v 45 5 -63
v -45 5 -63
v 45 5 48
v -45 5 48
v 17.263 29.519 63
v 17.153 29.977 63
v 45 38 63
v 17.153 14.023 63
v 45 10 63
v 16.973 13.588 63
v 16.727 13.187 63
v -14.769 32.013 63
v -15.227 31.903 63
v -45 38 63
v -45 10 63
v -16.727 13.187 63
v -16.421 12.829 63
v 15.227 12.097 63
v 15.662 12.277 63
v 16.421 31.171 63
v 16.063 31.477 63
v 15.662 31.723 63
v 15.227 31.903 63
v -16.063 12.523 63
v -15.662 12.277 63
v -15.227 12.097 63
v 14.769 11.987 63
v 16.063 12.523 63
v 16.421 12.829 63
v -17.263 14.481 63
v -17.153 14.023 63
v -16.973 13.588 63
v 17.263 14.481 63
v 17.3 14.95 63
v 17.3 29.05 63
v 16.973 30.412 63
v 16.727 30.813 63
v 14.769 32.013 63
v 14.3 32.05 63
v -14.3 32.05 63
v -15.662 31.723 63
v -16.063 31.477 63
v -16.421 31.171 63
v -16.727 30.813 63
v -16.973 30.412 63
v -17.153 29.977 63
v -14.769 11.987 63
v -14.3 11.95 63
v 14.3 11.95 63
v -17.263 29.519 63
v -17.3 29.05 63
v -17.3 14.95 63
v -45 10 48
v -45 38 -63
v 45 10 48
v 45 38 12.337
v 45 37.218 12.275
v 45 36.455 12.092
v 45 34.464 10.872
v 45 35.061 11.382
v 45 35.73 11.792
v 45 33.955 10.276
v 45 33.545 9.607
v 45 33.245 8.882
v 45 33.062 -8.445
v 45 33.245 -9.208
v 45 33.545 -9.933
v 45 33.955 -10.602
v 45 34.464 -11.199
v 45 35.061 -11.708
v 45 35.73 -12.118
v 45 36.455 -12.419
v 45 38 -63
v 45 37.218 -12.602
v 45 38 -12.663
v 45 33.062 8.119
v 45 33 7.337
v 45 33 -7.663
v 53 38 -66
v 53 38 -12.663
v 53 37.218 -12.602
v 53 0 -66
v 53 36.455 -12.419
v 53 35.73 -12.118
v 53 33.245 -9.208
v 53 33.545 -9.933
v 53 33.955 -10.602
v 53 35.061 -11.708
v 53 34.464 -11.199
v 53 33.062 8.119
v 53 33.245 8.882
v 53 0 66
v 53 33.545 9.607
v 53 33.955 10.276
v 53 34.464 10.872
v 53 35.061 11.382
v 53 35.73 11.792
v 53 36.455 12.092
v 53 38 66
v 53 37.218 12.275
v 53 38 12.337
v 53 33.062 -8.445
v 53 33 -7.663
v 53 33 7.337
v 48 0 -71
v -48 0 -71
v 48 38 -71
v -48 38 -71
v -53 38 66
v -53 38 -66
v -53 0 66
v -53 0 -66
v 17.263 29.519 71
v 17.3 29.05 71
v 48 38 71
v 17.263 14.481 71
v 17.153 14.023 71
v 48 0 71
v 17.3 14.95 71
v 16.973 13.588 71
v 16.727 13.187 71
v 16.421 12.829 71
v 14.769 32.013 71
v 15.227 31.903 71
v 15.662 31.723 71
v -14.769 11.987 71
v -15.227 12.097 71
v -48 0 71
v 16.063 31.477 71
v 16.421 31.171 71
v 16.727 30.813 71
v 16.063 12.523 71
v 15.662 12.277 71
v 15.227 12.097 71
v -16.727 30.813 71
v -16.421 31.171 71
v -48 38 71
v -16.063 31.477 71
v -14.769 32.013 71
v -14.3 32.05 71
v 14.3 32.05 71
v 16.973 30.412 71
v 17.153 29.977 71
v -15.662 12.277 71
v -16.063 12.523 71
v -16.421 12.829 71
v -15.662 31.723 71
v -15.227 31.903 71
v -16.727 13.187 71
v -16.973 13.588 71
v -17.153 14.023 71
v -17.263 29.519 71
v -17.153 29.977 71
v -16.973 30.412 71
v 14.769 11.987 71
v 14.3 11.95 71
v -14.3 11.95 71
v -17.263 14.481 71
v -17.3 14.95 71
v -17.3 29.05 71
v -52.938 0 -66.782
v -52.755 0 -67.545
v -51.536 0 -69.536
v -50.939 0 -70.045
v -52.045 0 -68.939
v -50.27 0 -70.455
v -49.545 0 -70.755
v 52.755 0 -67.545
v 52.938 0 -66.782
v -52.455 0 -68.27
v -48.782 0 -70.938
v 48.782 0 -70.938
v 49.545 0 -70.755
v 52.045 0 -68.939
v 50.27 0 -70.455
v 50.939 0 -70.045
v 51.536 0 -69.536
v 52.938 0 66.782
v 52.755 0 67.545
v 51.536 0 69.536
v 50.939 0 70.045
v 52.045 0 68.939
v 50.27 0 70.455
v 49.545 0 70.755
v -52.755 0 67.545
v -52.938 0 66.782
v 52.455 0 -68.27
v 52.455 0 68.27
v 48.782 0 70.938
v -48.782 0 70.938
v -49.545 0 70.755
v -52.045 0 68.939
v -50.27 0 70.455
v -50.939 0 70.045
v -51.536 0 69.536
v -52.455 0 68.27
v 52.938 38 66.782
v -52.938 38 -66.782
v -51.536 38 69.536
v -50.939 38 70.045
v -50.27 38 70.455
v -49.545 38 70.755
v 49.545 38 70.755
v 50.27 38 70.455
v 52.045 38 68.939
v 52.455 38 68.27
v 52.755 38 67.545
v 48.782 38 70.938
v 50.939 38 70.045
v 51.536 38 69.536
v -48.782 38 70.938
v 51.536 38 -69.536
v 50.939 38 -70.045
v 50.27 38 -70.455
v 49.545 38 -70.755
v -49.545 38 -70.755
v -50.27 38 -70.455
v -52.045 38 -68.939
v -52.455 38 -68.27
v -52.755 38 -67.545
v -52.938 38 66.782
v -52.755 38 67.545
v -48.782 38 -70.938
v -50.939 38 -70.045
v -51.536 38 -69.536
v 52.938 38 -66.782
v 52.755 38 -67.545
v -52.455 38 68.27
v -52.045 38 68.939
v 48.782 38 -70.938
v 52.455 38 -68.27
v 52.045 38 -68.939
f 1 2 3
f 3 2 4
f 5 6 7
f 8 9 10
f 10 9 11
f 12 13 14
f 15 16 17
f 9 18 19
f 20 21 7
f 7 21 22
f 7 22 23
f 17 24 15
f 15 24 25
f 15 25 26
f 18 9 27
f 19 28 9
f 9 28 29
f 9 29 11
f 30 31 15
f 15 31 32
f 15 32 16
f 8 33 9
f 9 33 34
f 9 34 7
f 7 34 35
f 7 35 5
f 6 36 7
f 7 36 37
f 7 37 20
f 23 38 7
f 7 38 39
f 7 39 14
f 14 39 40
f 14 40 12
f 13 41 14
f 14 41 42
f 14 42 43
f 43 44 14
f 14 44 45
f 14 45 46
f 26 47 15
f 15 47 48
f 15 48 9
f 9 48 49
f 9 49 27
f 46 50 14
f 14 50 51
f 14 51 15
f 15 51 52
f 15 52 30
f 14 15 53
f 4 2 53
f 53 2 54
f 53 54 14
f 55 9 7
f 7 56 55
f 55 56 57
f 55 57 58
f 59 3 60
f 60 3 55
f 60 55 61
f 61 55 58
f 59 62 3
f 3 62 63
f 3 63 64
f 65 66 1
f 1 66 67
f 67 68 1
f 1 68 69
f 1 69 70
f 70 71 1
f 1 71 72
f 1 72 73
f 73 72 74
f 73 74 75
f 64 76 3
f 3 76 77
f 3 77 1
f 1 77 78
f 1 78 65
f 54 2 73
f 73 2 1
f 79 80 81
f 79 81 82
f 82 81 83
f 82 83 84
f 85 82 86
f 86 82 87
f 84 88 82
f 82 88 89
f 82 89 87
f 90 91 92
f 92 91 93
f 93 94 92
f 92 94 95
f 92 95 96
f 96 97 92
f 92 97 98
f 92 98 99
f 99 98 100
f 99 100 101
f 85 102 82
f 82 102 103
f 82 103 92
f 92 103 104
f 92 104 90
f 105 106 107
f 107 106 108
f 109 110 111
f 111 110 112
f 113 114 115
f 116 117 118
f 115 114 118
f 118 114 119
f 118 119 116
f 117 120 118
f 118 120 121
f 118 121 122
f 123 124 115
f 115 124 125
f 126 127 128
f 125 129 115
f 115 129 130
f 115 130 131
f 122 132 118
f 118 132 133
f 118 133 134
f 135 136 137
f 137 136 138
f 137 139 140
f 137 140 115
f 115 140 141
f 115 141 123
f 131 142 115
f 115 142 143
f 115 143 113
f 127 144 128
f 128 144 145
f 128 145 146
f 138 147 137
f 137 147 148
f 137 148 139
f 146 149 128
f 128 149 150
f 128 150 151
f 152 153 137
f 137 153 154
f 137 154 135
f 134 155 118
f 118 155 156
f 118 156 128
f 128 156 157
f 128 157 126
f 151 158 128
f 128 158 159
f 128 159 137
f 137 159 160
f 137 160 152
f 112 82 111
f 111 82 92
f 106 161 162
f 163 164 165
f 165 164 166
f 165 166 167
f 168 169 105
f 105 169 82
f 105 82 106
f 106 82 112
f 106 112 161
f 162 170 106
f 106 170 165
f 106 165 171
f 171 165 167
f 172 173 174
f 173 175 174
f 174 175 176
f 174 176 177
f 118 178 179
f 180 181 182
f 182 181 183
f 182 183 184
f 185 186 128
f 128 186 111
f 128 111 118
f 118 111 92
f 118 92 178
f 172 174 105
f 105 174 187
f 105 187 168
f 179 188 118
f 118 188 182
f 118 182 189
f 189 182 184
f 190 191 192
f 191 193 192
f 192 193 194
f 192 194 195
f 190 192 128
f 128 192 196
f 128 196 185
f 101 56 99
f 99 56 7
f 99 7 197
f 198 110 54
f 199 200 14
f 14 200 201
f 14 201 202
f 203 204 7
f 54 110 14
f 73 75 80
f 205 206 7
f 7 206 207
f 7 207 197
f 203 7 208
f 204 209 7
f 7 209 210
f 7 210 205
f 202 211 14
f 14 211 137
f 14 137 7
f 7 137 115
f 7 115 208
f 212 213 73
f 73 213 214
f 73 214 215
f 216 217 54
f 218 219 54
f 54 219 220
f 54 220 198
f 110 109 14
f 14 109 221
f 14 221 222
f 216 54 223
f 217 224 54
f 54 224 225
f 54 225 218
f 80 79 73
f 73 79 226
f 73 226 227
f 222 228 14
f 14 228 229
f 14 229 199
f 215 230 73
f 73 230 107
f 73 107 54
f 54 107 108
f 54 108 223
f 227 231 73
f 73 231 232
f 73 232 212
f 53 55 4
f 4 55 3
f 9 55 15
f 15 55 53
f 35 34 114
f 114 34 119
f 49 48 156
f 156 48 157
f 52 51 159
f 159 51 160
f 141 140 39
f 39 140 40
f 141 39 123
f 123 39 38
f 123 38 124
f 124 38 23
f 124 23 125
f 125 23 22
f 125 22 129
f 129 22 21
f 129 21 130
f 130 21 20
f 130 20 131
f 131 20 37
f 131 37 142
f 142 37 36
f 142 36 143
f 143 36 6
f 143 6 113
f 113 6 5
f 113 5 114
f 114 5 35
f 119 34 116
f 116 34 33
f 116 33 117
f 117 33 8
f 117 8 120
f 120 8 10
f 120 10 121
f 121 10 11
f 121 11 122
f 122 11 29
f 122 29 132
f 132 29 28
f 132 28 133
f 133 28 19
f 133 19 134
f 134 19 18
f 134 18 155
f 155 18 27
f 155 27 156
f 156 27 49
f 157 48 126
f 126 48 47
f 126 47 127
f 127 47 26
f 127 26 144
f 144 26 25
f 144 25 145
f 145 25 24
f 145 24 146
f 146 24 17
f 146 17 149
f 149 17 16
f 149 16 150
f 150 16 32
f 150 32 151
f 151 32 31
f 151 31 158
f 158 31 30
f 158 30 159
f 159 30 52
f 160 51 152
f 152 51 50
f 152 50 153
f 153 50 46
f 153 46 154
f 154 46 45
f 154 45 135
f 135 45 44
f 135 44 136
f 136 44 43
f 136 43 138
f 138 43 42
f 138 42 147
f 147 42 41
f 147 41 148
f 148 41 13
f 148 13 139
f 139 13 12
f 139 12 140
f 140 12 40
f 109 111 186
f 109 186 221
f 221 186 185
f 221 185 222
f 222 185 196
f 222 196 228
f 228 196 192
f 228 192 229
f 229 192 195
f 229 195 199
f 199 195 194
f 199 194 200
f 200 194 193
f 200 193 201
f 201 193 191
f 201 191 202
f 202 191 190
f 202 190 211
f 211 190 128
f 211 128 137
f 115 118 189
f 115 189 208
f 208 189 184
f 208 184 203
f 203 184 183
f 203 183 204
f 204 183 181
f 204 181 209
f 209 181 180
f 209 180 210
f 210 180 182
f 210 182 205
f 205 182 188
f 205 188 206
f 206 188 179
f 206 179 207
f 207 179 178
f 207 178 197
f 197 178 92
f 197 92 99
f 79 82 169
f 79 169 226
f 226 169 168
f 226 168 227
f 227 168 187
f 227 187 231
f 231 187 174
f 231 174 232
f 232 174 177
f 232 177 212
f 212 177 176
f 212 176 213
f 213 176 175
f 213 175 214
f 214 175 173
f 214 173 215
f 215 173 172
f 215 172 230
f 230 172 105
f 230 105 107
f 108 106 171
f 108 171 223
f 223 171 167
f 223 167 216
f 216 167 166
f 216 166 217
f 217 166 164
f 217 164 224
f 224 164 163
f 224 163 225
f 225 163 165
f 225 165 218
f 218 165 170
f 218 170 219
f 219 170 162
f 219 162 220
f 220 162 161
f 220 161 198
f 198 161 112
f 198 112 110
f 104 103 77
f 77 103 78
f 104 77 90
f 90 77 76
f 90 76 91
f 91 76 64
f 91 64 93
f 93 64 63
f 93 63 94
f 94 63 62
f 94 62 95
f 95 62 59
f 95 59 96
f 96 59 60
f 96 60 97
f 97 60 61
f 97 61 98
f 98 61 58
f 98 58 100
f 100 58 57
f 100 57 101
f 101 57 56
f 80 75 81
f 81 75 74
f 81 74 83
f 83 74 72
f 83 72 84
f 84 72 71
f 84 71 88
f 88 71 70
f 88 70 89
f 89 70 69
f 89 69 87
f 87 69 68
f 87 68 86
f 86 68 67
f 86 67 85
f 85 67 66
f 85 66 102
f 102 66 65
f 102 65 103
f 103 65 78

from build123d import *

# Parameters (mm, degrees)
SKETCH1_W           = 106
SKETCH1_H           = 142
BOSS_EXTRUDE1_DEPTH = 5
SKETCH2_W           = 106
SKETCH2_H           = 8
BOSS_EXTRUDE2_DEPTH = 33
SKETCH3_W           = 106
SKETCH3_H           = 8
BOSS_EXTRUDE3_DEPTH = 33
SKETCH4_W           = 8
SKETCH4_H           = 126
BOSS_EXTRUDE4_DEPTH = 33
SKETCH5_W           = 90
SKETCH5_H           = 15
BOSS_EXTRUDE5_DEPTH = 5
SKETCH6_W           = 34.6
SKETCH6_H           = 20.1
CUT_EXTRUDE1_DEPTH  = 10
FILLET1_R           = 3
FILLET2_R           = 5
SKETCH8_W           = 25
SKETCH8_H           = 5
CUT_EXTRUDE2_DEPTH  = 10
FILLET3_R           = 5


with BuildPart() as part:
    # Sketch1 → Boss-Extrude1 (new body)
    with BuildSketch(Plane(origin=(0, 0, 0), x_dir=(1, 0, 0), z_dir=(0, 1, 0))):
        Rectangle(SKETCH1_W, SKETCH1_H)
    extrude(amount=BOSS_EXTRUDE1_DEPTH)

    # Sketch2 → Boss-Extrude2 (add)
    with BuildSketch(Plane(origin=(0, 5, 0), x_dir=(1, 0, 0), z_dir=(0, 1, 0))):
        with Locations((0, -67)):
            Rectangle(SKETCH2_W, SKETCH2_H)
    extrude(amount=BOSS_EXTRUDE2_DEPTH)

    # Sketch3 → Boss-Extrude3 (add)
    with BuildSketch(Plane(origin=(0, 5, 0), x_dir=(1, 0, 0), z_dir=(0, 1, 0))):
        with Locations((0, 67)):
            Rectangle(SKETCH3_W, SKETCH3_H)
    extrude(amount=BOSS_EXTRUDE3_DEPTH)

    # Sketch4 → Boss-Extrude4 (add)
    with BuildSketch(Plane(origin=(0, 5, 0), x_dir=(1, 0, 0), z_dir=(0, 1, 0))):
        with Locations((-49, 0)):
            Rectangle(SKETCH4_W, SKETCH4_H)
        with Locations((49, 0)):
            Rectangle(SKETCH4_W, SKETCH4_H)
    extrude(amount=BOSS_EXTRUDE4_DEPTH)

    # Sketch5 → Boss-Extrude5 (add)
    with BuildSketch(Plane(origin=(0, 5, 0), x_dir=(1, 0, 0), z_dir=(0, 1, 0))):
        with Locations((0, -55.5)):
            Rectangle(SKETCH5_W, SKETCH5_H)
    extrude(amount=BOSS_EXTRUDE5_DEPTH)

    # Sketch6 → Cut-Extrude1 (cut)
    with BuildSketch(Plane.XY.offset(71)):
        with Locations((0, 22)):
            Rectangle(SKETCH6_W, SKETCH6_H)
    extrude(amount=-CUT_EXTRUDE1_DEPTH, mode=Mode.SUBTRACT)

    # Fillet1
    fillet1_edges = [part.edges().sort_by_distance(p)[0] for p in [
        (17.3, 32.05, 67),
        (17.3, 11.95, 67),
        (-17.3, 11.95, 67),
        (-17.3, 32.05, 67),
    ]]
    fillet(fillet1_edges, radius=FILLET1_R)

    # Fillet2
    fillet2_edges = [part.edges().sort_by_distance(p)[0] for p in [
        (53, 19, 71),
        (-53, 19, 71),
        (-53, 19, -71),
        (53, 19, -71),
    ]]
    fillet(fillet2_edges, radius=FILLET2_R)

    # Sketch8 → Cut-Extrude2 (cut)
    with BuildSketch(Plane(origin=(53, 0, 0), x_dir=(0, 0, -1), z_dir=(1, 0, 0))):
        with Locations((0.163227162, 35.5)):
            Rectangle(SKETCH8_W, SKETCH8_H)
    extrude(amount=-CUT_EXTRUDE2_DEPTH, mode=Mode.SUBTRACT)

    # Fillet3
    fillet3_edges = [part.edges().sort_by_distance(p)[0] for p in [
        (49, 33, 12.336772838),
        (49, 33, -12.663227162),
    ]]
    fillet(fillet3_edges, radius=FILLET3_R - 0.0001)  # a hair under: the kernel refuses the full size


solid = part.part
